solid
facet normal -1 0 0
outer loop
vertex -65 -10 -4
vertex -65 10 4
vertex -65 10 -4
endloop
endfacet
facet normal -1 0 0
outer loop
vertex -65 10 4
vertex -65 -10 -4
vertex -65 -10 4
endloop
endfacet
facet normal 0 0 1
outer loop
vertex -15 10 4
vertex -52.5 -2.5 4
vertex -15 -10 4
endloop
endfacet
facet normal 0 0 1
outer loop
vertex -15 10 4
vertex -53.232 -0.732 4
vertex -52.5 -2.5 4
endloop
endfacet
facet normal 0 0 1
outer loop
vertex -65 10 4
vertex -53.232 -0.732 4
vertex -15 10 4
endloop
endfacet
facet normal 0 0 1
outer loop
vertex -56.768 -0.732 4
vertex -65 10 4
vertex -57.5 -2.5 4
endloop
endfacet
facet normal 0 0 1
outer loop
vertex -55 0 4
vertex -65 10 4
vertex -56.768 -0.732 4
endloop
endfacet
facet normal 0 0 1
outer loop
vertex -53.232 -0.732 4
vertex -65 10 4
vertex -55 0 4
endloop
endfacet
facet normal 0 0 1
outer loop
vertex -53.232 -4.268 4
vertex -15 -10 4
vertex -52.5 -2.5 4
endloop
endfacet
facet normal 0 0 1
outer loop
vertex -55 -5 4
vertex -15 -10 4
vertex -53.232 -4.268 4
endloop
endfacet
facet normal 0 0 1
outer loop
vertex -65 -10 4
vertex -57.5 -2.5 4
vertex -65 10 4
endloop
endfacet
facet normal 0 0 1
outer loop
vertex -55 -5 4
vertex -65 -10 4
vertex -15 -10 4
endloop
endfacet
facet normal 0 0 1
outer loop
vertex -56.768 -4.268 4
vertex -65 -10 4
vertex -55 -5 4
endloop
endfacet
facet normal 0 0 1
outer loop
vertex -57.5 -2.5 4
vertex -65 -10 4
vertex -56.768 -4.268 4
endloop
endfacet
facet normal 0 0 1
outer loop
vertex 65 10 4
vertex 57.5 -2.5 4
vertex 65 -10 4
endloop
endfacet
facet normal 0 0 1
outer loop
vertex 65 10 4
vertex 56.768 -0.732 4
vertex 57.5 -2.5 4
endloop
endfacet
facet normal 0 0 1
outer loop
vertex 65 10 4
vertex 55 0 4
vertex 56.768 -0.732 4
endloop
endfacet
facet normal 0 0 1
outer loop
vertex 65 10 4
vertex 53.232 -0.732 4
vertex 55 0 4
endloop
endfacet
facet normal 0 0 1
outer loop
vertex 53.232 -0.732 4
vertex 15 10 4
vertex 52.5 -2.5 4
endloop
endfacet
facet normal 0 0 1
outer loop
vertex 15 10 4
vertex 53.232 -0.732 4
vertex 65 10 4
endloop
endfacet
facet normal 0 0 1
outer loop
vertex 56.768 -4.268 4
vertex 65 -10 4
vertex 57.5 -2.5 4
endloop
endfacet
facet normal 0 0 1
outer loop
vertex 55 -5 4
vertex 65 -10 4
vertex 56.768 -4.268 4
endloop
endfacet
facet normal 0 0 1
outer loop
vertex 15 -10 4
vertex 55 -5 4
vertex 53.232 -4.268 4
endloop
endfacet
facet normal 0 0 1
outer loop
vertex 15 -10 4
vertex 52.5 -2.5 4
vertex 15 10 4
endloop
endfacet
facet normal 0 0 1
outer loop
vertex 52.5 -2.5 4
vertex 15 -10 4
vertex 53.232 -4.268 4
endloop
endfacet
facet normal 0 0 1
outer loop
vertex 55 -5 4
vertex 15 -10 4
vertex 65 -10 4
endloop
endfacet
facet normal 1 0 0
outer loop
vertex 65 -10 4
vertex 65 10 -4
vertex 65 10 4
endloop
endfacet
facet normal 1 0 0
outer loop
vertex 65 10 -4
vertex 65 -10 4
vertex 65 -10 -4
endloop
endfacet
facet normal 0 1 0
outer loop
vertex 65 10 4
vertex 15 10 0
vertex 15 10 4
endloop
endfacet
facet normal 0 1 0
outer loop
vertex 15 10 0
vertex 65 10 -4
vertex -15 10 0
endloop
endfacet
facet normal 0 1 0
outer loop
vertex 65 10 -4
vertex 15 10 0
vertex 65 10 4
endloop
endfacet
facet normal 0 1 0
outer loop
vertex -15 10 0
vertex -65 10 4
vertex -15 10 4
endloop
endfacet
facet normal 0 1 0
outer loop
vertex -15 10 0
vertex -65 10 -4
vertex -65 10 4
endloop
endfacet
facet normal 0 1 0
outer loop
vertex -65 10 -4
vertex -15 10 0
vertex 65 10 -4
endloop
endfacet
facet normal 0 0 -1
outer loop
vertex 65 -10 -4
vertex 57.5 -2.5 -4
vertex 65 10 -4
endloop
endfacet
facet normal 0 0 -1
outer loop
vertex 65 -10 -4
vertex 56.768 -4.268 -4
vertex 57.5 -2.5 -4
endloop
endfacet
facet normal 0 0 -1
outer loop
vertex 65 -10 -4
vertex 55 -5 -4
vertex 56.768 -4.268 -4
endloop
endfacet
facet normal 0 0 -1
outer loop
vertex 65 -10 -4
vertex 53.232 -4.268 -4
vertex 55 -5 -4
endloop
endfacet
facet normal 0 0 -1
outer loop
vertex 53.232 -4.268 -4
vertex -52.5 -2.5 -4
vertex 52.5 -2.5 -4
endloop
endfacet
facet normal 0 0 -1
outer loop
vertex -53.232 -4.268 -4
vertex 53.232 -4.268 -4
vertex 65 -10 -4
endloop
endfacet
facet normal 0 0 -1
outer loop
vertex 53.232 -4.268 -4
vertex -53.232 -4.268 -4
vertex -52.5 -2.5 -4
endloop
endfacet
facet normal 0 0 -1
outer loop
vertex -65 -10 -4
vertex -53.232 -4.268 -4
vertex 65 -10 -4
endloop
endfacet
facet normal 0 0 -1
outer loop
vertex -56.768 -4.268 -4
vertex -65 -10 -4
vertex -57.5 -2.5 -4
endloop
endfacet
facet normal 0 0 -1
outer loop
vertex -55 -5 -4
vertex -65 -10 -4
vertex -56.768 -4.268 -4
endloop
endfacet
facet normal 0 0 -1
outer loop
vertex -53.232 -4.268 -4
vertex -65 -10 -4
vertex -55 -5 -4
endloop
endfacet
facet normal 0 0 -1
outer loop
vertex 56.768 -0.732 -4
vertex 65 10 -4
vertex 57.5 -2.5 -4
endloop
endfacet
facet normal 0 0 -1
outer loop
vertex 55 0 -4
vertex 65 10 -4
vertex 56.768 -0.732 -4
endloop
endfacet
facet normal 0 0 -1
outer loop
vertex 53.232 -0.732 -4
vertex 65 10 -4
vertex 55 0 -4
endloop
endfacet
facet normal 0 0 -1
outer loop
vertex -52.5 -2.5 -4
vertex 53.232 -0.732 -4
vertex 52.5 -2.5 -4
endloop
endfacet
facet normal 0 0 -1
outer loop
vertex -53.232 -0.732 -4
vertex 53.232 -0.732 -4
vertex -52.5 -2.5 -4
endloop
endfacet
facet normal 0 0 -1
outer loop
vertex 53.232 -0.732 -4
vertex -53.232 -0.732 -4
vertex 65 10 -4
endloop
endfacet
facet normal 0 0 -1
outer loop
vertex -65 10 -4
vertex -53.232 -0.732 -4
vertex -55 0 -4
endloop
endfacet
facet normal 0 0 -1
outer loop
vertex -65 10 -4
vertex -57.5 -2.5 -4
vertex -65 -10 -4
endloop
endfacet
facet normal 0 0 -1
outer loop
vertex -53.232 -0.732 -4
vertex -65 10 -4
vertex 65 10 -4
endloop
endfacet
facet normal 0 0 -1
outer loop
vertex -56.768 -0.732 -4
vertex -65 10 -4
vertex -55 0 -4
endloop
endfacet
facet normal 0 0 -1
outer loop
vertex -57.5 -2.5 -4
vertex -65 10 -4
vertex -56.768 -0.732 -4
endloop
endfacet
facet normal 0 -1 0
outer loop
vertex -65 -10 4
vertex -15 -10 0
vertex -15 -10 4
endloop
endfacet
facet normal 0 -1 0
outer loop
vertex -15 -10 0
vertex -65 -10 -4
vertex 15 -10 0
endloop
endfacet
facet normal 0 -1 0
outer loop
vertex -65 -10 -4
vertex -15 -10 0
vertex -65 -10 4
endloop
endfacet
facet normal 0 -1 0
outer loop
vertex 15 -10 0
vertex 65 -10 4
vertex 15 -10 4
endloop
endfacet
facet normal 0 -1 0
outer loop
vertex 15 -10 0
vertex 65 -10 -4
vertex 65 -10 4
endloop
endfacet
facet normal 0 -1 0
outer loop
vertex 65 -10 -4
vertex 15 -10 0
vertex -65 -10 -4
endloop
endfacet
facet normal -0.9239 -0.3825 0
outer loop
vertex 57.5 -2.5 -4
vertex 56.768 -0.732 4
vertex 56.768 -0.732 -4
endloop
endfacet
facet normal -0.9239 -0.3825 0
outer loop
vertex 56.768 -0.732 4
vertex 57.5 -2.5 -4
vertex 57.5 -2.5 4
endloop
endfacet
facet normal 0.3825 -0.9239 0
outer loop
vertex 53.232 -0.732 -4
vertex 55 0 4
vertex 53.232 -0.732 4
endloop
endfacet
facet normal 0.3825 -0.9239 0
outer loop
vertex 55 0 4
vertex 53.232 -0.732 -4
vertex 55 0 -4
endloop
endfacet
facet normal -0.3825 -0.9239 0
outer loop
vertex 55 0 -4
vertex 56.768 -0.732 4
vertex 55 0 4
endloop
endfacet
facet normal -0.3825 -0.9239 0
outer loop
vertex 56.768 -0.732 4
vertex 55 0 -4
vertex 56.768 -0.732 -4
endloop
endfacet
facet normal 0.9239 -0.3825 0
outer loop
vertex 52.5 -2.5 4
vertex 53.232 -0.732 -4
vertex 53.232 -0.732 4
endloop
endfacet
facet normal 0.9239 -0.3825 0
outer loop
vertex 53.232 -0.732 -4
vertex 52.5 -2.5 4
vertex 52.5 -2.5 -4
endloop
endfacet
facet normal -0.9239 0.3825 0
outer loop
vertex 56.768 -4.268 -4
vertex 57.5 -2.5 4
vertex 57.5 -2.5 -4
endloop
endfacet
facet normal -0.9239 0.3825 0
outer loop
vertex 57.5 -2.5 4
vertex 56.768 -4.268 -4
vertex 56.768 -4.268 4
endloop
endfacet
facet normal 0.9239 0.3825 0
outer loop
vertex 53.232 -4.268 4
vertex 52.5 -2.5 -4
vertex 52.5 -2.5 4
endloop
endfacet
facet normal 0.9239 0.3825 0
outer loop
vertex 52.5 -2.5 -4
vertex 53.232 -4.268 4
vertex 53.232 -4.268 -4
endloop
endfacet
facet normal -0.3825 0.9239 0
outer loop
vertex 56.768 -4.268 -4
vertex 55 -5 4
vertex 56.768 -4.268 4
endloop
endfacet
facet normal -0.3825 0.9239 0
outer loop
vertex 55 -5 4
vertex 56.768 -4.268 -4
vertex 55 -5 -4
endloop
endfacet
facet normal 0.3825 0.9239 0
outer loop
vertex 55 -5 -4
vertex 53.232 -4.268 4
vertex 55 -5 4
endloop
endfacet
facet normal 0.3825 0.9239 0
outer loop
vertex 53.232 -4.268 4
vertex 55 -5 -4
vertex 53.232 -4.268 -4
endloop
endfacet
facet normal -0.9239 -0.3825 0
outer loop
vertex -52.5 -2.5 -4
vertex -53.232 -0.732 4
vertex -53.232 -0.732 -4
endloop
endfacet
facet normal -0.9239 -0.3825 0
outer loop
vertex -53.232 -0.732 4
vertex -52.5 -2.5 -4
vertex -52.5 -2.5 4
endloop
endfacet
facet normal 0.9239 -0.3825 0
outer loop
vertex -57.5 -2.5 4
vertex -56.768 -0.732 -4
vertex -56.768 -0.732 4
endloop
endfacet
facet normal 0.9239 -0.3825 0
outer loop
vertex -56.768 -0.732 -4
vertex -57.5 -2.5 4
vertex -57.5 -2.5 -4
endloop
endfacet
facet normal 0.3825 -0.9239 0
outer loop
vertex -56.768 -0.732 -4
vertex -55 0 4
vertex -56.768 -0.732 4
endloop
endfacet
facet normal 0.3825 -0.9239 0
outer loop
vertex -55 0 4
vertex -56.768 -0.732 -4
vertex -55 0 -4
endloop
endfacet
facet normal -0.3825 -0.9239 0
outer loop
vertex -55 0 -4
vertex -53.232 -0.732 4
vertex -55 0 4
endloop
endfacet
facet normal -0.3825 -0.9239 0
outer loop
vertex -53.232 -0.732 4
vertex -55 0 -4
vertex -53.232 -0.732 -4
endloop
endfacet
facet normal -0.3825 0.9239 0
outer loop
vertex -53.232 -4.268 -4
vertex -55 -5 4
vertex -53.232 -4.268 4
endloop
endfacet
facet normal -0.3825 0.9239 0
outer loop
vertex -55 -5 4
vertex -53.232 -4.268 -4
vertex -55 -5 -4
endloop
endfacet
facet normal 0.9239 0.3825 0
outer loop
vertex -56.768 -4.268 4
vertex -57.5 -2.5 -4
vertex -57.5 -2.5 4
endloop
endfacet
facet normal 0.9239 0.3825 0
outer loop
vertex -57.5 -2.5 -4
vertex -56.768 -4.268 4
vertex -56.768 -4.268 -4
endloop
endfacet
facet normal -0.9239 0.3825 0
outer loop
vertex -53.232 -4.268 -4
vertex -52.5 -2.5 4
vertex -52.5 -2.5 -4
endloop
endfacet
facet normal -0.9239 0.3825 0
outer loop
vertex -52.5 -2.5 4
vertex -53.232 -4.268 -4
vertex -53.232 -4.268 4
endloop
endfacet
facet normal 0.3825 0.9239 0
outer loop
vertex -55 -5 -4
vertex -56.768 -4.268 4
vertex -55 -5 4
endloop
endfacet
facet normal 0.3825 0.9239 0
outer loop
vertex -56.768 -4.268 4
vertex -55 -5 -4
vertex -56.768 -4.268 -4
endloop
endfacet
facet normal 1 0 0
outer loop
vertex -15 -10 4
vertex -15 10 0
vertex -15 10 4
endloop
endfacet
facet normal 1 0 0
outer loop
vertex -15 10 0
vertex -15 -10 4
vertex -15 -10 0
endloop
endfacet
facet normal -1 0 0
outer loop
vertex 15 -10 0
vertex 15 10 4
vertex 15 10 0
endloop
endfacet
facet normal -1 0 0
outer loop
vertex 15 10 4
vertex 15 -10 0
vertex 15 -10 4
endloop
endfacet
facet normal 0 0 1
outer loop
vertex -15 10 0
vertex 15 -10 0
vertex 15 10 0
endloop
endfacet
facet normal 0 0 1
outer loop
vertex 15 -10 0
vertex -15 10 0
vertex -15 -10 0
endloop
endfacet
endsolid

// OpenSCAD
difference(){
    cube([130, 20, 8], center = true);
    translate([ 55,-2.5, 0]) cylinder(h=20,d = 5, center = true);
    translate([ -55,-2.5, 0]) cylinder(h=20,d = 5, center = true);
    translate([0,0,5])cube([30, 20, 10], center = true);
    }
